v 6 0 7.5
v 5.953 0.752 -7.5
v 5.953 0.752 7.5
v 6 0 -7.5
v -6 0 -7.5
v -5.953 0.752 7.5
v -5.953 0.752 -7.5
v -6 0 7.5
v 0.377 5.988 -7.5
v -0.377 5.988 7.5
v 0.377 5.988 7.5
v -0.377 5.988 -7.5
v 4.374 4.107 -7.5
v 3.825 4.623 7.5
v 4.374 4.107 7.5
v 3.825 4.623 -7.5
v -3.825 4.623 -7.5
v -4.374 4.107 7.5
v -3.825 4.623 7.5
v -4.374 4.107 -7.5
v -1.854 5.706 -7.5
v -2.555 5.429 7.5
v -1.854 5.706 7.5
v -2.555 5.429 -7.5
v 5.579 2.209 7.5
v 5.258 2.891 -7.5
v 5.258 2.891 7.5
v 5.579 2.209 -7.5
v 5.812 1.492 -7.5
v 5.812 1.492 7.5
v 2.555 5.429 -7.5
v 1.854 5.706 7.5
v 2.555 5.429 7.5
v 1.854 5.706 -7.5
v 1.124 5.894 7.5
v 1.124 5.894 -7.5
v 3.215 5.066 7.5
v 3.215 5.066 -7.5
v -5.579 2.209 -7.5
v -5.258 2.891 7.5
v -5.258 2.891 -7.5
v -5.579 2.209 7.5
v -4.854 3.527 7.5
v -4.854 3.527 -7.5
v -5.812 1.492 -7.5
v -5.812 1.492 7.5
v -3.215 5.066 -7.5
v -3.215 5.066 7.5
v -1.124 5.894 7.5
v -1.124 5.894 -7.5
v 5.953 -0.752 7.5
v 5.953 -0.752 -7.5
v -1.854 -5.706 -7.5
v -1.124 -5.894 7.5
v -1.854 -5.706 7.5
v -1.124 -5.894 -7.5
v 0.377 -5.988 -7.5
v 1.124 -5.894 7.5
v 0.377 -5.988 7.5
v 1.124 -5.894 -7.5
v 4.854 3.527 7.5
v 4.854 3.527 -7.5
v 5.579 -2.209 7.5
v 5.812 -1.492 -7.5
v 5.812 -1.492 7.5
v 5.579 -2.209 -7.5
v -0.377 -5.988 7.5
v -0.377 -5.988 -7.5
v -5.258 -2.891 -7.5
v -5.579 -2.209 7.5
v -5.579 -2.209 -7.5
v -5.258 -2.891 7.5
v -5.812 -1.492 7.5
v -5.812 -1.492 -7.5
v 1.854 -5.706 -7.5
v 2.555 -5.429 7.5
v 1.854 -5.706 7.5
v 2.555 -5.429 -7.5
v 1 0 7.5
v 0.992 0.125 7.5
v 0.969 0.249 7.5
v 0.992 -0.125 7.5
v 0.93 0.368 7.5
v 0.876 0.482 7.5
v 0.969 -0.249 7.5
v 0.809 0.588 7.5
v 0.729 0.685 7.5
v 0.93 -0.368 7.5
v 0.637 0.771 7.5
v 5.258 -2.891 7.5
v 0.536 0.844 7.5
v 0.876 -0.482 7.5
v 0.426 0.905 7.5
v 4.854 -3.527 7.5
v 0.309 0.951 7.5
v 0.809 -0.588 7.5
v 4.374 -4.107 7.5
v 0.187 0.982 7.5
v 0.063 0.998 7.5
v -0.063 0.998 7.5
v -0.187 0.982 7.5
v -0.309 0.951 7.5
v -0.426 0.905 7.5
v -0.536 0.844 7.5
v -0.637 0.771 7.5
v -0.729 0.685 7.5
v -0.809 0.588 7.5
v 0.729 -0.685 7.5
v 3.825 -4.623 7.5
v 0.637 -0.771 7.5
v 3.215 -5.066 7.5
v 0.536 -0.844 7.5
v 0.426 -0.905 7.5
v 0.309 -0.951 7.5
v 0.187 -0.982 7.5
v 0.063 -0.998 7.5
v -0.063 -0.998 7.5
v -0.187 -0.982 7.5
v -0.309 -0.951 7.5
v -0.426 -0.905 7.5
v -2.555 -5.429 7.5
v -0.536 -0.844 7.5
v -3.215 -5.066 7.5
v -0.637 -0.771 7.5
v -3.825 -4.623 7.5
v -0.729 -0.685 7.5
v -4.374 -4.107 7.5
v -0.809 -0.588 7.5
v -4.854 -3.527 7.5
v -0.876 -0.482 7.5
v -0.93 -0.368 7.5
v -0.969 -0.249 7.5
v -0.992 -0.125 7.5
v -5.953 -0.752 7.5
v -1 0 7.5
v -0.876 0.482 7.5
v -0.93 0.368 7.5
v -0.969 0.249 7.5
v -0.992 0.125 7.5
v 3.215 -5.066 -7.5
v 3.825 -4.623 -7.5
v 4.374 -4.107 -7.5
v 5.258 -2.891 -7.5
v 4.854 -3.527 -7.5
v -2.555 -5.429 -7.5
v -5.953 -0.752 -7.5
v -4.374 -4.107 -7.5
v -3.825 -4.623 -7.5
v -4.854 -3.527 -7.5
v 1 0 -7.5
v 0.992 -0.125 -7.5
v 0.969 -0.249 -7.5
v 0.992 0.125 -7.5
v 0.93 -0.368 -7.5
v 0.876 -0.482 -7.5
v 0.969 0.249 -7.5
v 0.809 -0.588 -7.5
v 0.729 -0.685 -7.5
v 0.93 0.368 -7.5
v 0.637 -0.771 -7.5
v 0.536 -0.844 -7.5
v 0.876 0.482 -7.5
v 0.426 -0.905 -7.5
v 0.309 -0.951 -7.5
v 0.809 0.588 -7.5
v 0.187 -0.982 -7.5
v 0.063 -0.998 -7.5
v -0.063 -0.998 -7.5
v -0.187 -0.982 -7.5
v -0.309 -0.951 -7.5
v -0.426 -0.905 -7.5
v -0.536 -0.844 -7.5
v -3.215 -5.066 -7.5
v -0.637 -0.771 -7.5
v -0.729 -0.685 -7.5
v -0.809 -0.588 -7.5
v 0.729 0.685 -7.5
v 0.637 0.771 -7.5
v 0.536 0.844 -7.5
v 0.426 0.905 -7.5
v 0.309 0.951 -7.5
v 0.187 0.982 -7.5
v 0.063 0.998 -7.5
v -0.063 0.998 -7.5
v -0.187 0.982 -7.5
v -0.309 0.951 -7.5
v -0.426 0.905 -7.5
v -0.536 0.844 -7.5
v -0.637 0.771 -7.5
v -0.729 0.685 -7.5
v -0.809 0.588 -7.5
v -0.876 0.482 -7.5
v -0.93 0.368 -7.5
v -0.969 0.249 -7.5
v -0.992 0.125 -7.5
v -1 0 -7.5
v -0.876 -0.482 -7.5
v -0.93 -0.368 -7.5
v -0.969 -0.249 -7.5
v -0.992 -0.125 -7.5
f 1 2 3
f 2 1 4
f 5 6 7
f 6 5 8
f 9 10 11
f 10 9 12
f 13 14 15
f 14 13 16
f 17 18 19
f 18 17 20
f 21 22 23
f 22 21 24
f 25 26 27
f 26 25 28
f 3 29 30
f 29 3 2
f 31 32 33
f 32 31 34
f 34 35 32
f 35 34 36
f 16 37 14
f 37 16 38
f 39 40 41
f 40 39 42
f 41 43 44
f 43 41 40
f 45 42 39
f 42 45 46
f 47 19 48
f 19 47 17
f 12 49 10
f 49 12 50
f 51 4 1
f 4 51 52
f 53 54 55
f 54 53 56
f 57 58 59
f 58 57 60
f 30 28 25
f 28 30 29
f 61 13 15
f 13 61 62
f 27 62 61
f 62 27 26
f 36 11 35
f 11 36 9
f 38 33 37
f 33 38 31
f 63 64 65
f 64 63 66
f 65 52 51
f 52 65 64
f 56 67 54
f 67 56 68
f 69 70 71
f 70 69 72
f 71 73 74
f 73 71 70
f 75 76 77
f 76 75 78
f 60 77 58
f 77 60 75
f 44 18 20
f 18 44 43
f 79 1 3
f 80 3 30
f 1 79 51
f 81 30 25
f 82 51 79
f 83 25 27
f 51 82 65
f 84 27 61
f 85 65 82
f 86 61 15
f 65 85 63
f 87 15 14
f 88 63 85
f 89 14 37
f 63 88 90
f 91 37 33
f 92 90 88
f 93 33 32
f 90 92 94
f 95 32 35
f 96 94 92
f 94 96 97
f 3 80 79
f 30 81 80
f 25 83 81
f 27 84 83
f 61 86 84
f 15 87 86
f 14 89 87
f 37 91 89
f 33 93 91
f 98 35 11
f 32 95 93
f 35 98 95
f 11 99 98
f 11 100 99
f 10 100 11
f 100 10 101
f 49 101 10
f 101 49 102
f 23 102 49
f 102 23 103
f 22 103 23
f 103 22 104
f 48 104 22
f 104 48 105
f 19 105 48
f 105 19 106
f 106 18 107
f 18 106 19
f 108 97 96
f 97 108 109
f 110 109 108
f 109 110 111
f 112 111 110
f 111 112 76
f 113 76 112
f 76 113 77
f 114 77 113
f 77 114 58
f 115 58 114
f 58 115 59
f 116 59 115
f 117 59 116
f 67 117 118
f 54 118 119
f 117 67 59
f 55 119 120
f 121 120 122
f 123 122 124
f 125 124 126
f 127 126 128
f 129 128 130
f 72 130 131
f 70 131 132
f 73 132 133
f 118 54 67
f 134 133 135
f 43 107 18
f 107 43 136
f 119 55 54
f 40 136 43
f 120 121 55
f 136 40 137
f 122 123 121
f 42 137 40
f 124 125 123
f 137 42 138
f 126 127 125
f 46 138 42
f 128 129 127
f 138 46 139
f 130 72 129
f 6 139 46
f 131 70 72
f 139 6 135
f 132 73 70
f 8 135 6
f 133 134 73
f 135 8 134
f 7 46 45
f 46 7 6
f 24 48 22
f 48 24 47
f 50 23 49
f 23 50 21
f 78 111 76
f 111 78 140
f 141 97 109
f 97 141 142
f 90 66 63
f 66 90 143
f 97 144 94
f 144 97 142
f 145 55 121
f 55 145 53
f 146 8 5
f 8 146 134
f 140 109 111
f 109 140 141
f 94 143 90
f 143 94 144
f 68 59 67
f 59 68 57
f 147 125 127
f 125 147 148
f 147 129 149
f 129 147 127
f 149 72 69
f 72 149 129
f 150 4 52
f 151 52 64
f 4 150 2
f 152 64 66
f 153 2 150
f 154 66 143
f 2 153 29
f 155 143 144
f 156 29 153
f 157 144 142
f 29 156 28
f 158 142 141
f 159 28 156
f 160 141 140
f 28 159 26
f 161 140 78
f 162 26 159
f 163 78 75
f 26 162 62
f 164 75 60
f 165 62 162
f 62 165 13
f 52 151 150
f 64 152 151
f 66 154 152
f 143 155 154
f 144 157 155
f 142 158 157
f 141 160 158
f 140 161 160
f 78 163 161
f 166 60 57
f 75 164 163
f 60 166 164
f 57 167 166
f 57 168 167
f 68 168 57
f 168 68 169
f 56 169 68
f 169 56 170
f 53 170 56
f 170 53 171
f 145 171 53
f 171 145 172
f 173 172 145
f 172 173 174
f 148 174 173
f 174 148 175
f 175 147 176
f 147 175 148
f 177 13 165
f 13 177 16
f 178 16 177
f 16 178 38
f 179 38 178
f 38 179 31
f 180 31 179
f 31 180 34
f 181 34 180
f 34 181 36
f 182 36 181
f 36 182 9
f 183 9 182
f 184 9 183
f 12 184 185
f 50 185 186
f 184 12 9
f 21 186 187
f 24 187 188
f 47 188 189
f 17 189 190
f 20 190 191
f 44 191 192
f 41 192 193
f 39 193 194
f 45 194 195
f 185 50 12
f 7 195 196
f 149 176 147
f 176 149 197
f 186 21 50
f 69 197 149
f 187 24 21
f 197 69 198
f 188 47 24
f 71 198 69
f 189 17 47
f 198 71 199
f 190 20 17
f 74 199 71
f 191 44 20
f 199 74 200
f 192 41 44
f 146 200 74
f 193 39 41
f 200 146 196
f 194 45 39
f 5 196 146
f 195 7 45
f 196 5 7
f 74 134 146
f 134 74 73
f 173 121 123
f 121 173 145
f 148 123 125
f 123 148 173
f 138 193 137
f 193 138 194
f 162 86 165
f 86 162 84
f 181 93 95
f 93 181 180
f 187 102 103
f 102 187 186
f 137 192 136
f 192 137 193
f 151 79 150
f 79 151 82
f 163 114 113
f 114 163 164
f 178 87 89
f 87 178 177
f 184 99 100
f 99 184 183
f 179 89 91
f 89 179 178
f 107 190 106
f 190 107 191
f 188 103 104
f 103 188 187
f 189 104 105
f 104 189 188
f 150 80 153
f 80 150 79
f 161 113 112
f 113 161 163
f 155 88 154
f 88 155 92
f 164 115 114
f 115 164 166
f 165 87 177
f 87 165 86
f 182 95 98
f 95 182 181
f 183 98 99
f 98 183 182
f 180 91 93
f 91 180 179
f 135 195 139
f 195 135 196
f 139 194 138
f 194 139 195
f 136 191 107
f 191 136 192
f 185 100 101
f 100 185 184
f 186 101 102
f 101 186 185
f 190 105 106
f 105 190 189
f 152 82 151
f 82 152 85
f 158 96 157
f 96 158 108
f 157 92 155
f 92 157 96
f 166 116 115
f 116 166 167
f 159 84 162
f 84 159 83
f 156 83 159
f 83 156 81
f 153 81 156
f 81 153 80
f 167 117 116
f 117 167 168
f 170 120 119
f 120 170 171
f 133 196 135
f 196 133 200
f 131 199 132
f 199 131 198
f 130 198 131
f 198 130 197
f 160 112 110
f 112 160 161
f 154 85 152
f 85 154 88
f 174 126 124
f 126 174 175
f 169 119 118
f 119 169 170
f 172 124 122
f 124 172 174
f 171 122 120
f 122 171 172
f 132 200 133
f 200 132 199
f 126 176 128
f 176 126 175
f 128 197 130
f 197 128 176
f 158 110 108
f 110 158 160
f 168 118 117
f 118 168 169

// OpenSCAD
$fn = 50;


difference() {
	union() {
		translate(v = [0, 0, -7.5000000000]) {
			cylinder(h = 15, r = 6.0000000000);
		}
	}
	union() {
		translate(v = [0, 0, -100.0000000000]) {
			cylinder(h = 200, r = 1.0000000000);
		}
	}
}
